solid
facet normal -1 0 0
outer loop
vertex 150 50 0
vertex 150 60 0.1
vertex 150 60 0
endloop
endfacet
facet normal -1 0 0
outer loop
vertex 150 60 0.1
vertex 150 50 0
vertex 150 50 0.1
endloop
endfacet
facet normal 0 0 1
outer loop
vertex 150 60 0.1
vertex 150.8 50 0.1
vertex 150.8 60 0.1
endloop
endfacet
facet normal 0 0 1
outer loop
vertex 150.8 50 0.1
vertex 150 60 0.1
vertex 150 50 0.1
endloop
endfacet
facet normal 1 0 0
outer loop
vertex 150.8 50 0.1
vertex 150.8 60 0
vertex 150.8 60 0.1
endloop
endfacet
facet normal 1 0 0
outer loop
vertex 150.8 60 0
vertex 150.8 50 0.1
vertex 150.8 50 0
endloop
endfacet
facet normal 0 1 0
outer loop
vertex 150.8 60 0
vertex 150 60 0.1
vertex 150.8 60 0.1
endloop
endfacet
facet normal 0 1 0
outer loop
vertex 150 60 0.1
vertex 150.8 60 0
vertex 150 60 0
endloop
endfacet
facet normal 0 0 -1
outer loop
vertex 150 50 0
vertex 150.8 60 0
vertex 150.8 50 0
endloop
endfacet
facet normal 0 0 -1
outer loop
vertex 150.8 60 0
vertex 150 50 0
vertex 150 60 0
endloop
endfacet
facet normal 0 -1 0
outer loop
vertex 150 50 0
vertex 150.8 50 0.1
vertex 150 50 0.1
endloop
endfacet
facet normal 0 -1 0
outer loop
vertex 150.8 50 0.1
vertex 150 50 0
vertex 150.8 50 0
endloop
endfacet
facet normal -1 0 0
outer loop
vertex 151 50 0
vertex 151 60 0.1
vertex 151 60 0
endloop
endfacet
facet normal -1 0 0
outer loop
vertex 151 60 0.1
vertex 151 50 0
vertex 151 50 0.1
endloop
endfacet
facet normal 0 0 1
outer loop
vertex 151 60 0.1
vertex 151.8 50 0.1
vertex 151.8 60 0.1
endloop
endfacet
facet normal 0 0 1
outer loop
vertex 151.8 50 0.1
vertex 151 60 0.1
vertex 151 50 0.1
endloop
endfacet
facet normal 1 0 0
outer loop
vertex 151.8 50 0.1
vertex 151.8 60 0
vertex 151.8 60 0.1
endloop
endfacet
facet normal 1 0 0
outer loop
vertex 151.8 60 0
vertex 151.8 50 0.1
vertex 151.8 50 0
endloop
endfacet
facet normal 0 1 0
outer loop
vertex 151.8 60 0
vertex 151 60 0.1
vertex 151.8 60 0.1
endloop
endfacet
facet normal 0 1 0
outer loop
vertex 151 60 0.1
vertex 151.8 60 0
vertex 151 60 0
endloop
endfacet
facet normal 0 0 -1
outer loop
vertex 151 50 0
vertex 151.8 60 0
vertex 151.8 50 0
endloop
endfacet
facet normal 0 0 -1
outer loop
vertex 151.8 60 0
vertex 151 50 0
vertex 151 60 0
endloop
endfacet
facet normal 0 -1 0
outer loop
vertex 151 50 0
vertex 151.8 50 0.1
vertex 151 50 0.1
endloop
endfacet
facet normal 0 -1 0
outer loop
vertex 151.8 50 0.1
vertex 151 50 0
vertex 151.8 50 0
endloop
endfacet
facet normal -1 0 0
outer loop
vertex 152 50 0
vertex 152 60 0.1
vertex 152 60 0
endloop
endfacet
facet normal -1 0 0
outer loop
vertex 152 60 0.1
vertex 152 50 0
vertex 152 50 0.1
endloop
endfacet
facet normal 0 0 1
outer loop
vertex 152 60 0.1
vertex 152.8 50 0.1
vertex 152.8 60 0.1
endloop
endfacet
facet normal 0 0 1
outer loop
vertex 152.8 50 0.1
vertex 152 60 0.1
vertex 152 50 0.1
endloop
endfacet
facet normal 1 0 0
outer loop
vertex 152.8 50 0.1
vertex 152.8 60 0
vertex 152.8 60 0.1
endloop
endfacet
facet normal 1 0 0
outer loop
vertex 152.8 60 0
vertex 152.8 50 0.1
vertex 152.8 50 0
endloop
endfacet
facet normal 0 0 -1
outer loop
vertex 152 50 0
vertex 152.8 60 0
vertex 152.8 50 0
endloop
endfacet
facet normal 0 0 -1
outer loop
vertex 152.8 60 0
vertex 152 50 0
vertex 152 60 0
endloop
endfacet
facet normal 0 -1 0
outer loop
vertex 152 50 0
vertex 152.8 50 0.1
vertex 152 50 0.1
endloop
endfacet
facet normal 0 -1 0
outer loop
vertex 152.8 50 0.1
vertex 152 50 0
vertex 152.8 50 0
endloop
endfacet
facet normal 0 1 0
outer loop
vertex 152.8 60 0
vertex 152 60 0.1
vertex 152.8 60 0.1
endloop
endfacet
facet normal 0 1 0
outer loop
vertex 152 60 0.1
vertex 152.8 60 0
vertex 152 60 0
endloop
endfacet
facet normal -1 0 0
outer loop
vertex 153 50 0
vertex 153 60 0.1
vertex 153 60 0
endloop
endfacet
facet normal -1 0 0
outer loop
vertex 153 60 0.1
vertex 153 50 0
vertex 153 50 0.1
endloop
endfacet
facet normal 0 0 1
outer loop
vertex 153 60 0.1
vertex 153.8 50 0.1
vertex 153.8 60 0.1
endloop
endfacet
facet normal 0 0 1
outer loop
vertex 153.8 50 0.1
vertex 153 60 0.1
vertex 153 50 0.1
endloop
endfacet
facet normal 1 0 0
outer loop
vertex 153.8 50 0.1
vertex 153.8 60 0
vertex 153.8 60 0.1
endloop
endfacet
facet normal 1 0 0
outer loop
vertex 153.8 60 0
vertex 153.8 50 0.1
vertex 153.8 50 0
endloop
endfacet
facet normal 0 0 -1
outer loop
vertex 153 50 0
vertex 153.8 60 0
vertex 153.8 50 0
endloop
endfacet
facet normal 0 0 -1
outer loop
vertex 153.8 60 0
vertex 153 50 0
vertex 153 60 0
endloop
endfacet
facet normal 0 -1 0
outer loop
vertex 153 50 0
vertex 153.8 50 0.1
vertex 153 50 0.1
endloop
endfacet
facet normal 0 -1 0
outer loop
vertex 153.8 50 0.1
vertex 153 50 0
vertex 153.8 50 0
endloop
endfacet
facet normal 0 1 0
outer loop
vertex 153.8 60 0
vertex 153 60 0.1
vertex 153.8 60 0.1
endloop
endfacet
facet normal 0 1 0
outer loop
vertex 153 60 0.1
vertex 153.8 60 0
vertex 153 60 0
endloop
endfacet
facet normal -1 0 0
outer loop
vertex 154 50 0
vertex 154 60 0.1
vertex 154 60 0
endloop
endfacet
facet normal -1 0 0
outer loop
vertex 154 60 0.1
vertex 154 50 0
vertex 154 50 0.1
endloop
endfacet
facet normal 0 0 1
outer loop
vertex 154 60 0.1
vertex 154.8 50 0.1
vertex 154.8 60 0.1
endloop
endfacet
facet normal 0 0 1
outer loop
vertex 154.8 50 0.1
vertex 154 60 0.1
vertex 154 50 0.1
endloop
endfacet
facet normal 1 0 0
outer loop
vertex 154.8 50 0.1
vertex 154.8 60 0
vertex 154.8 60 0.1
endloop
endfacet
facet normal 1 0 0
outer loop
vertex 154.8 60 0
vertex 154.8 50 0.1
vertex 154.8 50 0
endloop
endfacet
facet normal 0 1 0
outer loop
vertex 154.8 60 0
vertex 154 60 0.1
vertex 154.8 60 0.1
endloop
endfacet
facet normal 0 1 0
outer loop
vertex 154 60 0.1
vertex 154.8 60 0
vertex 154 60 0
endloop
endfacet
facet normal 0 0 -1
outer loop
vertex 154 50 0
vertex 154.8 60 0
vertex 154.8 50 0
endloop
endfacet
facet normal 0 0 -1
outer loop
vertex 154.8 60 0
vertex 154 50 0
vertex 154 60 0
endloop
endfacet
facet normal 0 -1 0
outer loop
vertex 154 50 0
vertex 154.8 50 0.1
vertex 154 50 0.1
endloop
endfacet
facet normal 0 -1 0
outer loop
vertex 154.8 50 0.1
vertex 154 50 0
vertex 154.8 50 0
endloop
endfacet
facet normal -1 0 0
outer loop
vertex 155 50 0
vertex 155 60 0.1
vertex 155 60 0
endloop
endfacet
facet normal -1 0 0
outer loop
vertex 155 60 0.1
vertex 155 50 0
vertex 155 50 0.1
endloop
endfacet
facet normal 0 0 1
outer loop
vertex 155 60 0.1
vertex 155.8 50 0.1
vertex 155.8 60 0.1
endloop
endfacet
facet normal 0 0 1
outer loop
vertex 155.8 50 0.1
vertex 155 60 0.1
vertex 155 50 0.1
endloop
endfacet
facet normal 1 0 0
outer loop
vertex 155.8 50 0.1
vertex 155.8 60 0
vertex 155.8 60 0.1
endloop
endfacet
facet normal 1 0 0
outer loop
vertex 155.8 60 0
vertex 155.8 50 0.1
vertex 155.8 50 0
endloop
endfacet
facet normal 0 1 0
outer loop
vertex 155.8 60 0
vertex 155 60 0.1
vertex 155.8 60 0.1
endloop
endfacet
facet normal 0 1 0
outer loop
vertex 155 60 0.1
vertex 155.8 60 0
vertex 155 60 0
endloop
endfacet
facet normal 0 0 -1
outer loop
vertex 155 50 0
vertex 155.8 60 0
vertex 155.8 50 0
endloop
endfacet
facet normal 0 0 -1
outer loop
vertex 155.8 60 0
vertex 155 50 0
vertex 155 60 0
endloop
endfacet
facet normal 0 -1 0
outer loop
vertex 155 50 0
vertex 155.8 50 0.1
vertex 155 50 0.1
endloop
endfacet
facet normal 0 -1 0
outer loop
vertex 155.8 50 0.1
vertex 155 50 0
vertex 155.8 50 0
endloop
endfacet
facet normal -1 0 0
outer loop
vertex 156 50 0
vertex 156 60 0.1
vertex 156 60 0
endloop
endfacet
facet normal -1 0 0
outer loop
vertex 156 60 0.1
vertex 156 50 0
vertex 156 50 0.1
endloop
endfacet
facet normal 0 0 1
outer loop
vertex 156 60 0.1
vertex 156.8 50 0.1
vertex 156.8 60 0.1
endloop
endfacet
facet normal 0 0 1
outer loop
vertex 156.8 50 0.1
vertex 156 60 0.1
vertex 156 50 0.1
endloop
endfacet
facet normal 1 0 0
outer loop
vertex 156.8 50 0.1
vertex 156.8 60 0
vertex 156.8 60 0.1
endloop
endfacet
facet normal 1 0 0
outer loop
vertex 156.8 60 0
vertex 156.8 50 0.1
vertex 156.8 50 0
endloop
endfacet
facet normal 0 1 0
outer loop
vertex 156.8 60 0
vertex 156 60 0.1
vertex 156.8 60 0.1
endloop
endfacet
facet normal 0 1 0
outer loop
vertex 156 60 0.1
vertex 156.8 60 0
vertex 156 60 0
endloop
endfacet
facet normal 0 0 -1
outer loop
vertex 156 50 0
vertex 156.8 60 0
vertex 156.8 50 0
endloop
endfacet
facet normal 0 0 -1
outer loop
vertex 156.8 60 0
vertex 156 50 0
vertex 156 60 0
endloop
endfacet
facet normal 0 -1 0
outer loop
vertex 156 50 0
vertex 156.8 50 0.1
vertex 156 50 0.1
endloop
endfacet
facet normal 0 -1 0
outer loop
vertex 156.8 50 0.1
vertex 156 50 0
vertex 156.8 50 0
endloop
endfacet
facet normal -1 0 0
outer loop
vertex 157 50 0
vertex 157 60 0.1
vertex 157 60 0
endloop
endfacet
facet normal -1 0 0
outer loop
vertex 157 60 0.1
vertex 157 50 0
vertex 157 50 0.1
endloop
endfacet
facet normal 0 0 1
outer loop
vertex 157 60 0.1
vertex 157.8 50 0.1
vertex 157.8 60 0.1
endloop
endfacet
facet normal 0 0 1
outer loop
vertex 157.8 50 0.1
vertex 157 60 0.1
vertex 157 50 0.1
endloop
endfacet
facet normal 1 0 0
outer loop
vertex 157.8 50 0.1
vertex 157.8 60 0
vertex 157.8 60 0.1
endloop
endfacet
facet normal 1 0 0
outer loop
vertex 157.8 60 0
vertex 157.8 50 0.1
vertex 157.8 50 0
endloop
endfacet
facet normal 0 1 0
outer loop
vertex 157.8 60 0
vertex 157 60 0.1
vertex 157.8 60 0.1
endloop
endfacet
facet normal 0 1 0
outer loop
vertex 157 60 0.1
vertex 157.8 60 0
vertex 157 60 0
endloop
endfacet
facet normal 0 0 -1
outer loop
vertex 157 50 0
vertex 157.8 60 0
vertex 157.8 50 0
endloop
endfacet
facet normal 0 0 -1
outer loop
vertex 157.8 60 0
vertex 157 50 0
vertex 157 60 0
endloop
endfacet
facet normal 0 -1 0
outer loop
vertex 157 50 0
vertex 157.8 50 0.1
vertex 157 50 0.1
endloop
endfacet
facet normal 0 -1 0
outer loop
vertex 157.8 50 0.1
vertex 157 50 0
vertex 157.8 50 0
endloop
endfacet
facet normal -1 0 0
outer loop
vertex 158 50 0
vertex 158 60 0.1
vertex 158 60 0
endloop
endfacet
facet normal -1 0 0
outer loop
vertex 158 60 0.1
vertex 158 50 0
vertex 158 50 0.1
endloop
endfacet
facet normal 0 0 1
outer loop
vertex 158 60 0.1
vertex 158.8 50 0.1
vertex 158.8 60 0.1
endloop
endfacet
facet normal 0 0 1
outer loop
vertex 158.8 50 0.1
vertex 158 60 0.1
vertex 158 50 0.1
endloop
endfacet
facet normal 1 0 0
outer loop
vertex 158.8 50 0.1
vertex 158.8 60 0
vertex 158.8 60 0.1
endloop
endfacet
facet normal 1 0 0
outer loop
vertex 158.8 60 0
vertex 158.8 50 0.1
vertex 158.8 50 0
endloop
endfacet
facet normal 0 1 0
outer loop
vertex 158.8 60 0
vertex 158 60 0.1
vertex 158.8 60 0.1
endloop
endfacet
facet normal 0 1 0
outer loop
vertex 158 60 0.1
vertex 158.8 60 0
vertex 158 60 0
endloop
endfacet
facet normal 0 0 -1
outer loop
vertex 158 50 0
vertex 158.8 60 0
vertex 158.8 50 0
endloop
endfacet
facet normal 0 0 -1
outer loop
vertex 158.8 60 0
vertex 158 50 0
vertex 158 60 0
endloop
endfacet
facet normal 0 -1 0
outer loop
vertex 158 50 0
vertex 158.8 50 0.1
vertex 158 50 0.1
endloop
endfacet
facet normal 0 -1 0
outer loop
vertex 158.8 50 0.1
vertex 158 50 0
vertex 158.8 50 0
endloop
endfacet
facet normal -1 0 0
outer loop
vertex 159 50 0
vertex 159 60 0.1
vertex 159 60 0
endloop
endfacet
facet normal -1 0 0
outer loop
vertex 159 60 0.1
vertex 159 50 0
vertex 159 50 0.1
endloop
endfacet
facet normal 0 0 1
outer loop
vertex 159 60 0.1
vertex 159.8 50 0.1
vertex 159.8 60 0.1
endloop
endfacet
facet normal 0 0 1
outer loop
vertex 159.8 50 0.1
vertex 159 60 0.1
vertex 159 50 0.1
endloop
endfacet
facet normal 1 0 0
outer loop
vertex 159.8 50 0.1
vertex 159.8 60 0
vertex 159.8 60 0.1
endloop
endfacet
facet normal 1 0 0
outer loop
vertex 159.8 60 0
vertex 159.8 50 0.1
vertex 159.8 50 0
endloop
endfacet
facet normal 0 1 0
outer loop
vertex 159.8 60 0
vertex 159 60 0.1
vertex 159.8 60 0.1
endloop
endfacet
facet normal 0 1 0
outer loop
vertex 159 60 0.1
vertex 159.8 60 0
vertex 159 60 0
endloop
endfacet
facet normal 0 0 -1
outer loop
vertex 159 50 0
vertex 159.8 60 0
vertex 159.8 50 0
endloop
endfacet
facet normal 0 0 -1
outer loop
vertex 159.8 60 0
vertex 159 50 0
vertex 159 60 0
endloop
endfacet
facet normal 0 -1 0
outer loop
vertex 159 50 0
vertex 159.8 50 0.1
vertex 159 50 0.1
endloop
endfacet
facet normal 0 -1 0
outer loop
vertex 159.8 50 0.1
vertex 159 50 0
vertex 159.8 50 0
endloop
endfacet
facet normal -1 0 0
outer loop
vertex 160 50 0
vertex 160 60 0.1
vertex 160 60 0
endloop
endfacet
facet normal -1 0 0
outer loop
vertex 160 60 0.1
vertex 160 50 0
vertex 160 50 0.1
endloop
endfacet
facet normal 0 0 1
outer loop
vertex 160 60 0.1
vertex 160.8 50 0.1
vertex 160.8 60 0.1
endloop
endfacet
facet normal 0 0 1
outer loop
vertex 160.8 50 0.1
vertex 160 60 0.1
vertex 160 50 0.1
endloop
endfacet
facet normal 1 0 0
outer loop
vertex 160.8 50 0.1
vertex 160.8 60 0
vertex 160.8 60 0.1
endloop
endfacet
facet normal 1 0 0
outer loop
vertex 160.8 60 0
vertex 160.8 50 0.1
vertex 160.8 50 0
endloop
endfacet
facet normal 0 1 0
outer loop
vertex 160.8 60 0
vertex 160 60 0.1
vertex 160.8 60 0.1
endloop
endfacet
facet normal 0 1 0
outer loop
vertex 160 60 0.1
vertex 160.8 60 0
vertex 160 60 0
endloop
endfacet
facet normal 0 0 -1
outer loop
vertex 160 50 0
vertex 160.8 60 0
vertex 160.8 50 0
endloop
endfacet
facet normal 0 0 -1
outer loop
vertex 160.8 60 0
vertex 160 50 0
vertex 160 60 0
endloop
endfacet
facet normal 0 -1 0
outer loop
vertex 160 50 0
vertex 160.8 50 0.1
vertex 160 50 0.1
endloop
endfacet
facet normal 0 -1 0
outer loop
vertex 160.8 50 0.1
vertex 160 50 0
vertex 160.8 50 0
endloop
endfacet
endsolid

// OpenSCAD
translate([10+140,10+40,0])
        for (i = [0 : 10]){
            translate([i,0,0])
                cube(size = [0.8,10,0.1]);
    }
